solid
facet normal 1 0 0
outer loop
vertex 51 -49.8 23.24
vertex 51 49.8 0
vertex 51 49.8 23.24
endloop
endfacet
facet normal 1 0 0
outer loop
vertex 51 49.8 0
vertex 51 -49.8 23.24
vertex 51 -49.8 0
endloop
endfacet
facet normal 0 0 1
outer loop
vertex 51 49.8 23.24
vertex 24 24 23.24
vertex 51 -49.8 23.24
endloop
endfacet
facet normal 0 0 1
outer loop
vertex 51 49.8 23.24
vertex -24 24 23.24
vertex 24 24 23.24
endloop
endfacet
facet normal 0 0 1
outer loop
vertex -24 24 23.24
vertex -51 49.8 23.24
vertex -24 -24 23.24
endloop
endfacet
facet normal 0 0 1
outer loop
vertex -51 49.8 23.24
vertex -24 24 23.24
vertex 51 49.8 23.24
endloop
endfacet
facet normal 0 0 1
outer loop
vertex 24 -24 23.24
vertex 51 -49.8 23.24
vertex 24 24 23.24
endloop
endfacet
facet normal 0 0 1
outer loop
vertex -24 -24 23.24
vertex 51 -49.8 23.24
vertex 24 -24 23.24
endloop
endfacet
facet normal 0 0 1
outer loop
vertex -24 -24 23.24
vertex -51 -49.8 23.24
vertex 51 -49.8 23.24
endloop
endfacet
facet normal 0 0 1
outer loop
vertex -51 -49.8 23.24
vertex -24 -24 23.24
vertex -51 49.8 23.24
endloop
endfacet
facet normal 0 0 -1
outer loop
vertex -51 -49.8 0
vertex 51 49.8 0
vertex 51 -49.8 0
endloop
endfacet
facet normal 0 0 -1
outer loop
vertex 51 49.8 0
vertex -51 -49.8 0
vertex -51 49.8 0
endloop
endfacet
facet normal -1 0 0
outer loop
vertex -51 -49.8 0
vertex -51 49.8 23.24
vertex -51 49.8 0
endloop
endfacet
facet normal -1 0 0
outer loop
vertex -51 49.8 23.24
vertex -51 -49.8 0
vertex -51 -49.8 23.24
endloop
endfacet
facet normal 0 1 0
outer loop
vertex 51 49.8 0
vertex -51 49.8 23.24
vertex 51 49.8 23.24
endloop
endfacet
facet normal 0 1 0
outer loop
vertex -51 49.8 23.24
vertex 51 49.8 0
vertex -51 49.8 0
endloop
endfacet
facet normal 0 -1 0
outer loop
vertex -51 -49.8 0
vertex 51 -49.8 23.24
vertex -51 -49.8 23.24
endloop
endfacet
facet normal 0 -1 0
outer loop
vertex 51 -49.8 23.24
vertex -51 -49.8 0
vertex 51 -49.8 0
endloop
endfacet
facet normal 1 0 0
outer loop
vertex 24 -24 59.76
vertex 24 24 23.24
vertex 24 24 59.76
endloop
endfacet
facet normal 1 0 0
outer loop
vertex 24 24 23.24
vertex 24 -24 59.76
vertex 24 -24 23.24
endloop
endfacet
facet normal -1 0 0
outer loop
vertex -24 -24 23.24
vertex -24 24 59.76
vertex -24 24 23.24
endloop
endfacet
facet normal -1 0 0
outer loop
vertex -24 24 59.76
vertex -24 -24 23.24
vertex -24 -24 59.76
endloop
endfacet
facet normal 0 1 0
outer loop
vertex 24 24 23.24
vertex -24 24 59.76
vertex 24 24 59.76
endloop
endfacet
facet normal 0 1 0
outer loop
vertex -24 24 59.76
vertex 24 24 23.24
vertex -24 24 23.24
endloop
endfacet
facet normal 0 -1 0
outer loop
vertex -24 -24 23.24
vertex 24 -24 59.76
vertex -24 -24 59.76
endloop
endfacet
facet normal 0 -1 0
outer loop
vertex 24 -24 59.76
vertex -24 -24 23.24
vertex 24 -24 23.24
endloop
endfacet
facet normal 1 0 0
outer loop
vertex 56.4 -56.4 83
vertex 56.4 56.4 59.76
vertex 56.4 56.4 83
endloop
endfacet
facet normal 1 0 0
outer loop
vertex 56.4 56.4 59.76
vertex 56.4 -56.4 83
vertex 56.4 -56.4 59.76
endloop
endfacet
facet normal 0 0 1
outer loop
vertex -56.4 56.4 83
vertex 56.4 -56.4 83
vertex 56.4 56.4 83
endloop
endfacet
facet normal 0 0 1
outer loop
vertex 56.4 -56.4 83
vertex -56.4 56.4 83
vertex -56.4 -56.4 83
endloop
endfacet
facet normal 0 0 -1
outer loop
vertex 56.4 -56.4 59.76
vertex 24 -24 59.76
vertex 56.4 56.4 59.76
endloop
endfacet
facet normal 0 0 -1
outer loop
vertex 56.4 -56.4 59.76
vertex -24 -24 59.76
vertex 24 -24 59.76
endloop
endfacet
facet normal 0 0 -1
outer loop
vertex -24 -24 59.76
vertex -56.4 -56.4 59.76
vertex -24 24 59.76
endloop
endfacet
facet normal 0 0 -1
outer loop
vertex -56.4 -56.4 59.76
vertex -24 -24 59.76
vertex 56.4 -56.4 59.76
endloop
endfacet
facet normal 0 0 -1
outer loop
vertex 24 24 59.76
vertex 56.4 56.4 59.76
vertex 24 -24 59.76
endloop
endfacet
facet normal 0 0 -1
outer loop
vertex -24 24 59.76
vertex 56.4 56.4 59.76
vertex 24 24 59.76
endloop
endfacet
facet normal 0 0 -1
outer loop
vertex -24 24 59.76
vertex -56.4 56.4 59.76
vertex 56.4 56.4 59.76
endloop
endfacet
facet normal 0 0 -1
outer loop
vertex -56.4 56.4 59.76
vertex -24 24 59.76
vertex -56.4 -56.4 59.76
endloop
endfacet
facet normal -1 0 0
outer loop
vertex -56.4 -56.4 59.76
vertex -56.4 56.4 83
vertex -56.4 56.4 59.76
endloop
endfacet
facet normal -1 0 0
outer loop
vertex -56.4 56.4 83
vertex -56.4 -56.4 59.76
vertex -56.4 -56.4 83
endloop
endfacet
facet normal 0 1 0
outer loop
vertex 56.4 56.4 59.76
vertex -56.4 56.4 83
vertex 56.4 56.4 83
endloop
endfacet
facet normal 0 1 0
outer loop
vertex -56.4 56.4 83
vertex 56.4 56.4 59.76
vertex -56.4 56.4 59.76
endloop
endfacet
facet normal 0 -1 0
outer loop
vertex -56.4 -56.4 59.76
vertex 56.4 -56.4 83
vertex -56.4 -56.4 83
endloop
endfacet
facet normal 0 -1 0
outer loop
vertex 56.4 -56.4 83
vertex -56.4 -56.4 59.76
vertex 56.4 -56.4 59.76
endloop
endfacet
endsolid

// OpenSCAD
/* doodle-meta {"version":1,"parameters":{"width":{"label":"Overall width","description":"Changes the body width","unit":"mm","feature":"body_width"},"depth":{"label":"Overall depth","description":"Changes the body depth","unit":"mm","feature":"body_depth"},"height":{"label":"Overall height","description":"Changes the body height","unit":"mm","feature":"body_height"}},"features":{"body_width":{"kind":"dimension","axis":"x","label":"Overall width"},"body_depth":{"kind":"dimension","axis":"y","label":"Overall depth"},"body_height":{"kind":"dimension","axis":"z","label":"Overall height"}}} */

width = 120.0;
depth = 120.0;
height = 83.0;

// Section heights derived from front view proportions (sum to height)
h_bottom = height * 0.28;
h_waist = height * 0.44;
h_top = height * 0.28;

// Section widths (X) derived from front view proportions
w_bottom = width * 0.85;
w_waist = width * 0.40;
w_top = width * 0.94;

// Section depths (Y) derived from right view proportions
d_bottom = depth * 0.83;
d_waist = depth * 0.40;
d_top = depth * 0.94;

// Z levels (bottom of each section)
z_bottom = 0;
z_waist = h_bottom;
z_top = h_bottom + h_waist;

// Overlap to ensure manifold connection
eps = 0.1;

module bottom_flange() {
    translate([0, 0, z_bottom + h_bottom/2])
    cube([w_bottom, d_bottom, h_bottom], center=true);
}

module waist() {
    translate([0, 0, z_waist + h_waist/2])
    cube([w_waist, d_waist, h_waist + 2*eps], center=true);
}

module top_flange() {
    translate([0, 0, z_top + h_top/2])
    cube([w_top, d_top, h_top], center=true);
}

module bracket() {
    union() {
        bottom_flange();
        waist();
        top_flange();
    }
}

bracket();
